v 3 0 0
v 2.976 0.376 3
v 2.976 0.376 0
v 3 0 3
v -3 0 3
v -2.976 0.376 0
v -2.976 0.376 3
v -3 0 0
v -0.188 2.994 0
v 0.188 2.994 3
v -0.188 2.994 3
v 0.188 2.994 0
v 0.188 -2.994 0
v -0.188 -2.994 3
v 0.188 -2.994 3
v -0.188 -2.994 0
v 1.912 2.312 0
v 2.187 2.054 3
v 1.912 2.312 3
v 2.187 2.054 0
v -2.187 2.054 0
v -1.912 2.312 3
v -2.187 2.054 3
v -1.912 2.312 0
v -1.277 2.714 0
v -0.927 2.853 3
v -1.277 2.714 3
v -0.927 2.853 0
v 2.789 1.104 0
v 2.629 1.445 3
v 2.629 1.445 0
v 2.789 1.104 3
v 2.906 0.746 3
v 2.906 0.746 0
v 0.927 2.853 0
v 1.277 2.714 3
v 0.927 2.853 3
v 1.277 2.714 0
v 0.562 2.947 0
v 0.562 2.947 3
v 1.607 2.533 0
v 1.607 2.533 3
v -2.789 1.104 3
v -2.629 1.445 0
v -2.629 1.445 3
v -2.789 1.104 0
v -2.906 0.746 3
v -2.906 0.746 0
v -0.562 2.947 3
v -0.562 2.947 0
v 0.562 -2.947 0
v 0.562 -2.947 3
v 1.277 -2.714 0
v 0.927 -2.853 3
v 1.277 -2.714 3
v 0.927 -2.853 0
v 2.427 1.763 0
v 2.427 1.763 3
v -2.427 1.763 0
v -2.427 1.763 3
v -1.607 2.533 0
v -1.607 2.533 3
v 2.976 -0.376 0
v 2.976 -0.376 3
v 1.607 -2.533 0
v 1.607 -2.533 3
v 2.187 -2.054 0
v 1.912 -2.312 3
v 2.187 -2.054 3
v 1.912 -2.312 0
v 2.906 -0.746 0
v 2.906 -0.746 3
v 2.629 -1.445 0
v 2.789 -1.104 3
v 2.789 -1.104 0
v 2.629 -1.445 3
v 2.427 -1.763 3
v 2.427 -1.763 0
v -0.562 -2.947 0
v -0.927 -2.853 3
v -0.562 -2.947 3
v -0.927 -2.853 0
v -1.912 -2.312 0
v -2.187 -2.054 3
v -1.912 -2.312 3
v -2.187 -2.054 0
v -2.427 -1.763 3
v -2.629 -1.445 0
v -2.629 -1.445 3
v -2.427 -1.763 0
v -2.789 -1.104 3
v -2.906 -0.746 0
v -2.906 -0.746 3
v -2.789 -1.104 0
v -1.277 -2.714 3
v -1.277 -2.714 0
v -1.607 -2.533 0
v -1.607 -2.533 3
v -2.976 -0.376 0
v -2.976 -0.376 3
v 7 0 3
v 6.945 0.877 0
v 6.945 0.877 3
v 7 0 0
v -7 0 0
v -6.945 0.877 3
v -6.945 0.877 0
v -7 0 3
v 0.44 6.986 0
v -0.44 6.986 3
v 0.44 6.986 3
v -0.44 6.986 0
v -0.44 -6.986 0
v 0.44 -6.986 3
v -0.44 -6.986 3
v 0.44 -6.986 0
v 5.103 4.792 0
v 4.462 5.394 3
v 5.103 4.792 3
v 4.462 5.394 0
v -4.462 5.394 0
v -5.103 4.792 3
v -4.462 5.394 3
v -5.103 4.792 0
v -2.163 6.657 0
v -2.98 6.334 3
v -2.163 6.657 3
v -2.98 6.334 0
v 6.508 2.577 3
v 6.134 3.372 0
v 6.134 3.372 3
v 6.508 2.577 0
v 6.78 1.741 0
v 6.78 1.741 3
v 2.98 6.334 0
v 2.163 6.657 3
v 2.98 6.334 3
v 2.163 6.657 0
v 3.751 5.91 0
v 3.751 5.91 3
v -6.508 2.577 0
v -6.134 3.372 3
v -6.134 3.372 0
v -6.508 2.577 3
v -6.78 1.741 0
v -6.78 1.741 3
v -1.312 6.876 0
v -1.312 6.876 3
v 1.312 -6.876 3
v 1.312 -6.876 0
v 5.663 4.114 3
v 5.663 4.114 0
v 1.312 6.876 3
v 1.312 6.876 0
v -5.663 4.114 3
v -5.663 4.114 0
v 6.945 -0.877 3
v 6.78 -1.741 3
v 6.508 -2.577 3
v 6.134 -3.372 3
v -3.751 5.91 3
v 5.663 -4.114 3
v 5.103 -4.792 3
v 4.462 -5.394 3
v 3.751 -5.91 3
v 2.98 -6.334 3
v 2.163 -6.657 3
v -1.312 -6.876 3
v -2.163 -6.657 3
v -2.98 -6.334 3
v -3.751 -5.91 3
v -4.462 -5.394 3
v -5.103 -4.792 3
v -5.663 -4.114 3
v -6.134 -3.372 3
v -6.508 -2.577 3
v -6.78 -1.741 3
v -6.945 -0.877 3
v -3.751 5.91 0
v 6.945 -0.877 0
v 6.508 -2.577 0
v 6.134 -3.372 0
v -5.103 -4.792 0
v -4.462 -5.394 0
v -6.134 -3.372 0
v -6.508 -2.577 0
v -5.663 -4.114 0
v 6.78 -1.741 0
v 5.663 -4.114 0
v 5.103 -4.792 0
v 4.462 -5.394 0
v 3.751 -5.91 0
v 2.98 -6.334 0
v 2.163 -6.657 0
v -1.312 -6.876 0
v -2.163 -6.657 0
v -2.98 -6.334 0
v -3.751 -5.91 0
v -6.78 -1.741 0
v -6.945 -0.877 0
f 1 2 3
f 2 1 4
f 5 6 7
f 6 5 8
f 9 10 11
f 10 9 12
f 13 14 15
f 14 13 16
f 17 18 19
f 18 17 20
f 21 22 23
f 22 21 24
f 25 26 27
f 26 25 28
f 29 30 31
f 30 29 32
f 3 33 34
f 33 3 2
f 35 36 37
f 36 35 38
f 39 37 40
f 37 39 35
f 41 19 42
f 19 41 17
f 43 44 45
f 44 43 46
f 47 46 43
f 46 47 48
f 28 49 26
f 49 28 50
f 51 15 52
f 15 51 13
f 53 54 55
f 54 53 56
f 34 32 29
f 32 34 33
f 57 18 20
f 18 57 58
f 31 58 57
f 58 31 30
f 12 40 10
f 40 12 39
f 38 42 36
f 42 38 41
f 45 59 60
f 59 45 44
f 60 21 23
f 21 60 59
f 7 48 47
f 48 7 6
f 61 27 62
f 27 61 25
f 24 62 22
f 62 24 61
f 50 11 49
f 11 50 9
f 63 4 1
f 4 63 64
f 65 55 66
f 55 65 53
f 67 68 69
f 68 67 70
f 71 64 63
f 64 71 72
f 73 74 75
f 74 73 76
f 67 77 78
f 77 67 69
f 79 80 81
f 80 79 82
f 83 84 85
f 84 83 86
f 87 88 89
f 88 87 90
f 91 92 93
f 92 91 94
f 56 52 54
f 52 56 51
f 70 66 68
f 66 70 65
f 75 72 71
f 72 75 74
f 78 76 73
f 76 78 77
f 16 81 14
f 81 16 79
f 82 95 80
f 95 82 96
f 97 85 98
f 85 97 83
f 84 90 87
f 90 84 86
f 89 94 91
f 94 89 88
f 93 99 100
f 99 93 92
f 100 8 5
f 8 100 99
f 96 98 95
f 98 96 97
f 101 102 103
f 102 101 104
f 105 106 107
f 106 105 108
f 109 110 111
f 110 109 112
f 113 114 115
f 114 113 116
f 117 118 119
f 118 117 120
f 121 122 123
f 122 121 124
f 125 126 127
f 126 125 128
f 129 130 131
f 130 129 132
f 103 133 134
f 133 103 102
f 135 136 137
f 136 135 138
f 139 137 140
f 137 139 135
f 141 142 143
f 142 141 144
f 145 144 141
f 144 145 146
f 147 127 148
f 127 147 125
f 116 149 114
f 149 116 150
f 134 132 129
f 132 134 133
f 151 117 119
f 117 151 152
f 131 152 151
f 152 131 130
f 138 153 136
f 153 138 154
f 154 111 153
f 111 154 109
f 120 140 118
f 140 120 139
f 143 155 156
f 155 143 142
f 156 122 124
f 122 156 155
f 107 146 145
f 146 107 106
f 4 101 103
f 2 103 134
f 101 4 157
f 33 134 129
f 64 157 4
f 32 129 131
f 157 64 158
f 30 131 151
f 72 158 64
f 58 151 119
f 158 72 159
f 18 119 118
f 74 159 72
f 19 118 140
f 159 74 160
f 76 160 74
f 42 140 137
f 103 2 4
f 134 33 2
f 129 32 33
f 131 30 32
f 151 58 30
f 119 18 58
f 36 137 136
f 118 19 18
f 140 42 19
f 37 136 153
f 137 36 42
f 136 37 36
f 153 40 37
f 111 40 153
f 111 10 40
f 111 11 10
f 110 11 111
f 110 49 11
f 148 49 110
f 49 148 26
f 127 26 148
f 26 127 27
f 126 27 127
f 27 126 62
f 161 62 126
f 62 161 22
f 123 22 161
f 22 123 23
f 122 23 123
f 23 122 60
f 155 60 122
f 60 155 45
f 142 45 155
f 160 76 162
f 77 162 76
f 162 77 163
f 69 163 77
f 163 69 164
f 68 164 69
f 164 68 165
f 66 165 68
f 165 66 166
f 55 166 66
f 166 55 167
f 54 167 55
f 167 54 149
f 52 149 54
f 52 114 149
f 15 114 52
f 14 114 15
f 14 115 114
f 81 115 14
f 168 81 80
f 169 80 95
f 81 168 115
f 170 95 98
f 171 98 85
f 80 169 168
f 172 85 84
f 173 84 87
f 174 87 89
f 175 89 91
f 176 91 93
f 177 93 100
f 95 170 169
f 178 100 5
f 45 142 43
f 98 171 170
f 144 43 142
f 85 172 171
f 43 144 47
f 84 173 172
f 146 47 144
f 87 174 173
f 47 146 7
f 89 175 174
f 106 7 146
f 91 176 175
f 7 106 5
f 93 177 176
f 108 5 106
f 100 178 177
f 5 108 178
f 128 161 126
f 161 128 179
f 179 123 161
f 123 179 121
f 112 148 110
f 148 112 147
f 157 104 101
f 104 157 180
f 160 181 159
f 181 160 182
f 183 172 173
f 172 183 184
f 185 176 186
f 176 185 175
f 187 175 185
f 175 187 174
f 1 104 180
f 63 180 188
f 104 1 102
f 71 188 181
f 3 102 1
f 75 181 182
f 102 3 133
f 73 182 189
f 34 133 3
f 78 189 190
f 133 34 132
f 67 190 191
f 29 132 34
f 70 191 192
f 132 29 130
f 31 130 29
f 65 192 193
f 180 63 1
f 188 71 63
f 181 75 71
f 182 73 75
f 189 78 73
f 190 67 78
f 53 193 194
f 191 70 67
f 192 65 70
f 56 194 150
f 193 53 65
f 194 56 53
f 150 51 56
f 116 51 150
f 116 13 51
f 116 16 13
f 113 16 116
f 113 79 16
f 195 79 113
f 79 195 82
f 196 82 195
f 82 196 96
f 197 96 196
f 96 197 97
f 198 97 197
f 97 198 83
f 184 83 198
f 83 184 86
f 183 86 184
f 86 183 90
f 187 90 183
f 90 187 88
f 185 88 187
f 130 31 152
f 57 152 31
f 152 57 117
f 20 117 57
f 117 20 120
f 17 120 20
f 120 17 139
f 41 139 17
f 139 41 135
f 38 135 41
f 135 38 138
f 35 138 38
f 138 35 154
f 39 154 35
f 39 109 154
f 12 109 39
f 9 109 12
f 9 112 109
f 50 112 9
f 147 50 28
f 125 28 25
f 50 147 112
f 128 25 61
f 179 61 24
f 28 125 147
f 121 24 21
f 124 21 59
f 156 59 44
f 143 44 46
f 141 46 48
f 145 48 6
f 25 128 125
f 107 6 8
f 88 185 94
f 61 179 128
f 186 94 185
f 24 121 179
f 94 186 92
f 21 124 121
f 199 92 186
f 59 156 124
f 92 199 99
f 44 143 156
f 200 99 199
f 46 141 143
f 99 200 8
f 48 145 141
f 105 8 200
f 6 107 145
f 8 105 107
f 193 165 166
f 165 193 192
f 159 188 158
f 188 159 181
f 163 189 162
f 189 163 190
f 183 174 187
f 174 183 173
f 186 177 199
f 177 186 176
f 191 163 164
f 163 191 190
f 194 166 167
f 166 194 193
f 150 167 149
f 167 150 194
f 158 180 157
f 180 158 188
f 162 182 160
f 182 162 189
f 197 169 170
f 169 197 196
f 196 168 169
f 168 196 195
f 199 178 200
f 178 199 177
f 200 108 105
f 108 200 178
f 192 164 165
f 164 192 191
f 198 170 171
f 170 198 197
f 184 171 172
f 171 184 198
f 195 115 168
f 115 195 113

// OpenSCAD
$fn = 50;


difference() {
	union() {
		cylinder(h = 3, r = 7.0000000000);
	}
	union() {
		translate(v = [0.0000000000, 0.0000000000, -100.0000000000]) {
			cylinder(h = 200, r = 3.0000000000);
		}
		translate(v = [0.0000000000, 0.0000000000, -100.0000000000]) {
			cylinder(h = 200, r = 3.0000000000);
		}
		translate(v = [0.0000000000, 0.0000000000, -100.0000000000]) {
			cylinder(h = 200, r = 3.0000000000);
		}
		translate(v = [0.0000000000, 0.0000000000, -100.0000000000]) {
			cylinder(h = 200, r = 3.0000000000);
		}
	}
}
